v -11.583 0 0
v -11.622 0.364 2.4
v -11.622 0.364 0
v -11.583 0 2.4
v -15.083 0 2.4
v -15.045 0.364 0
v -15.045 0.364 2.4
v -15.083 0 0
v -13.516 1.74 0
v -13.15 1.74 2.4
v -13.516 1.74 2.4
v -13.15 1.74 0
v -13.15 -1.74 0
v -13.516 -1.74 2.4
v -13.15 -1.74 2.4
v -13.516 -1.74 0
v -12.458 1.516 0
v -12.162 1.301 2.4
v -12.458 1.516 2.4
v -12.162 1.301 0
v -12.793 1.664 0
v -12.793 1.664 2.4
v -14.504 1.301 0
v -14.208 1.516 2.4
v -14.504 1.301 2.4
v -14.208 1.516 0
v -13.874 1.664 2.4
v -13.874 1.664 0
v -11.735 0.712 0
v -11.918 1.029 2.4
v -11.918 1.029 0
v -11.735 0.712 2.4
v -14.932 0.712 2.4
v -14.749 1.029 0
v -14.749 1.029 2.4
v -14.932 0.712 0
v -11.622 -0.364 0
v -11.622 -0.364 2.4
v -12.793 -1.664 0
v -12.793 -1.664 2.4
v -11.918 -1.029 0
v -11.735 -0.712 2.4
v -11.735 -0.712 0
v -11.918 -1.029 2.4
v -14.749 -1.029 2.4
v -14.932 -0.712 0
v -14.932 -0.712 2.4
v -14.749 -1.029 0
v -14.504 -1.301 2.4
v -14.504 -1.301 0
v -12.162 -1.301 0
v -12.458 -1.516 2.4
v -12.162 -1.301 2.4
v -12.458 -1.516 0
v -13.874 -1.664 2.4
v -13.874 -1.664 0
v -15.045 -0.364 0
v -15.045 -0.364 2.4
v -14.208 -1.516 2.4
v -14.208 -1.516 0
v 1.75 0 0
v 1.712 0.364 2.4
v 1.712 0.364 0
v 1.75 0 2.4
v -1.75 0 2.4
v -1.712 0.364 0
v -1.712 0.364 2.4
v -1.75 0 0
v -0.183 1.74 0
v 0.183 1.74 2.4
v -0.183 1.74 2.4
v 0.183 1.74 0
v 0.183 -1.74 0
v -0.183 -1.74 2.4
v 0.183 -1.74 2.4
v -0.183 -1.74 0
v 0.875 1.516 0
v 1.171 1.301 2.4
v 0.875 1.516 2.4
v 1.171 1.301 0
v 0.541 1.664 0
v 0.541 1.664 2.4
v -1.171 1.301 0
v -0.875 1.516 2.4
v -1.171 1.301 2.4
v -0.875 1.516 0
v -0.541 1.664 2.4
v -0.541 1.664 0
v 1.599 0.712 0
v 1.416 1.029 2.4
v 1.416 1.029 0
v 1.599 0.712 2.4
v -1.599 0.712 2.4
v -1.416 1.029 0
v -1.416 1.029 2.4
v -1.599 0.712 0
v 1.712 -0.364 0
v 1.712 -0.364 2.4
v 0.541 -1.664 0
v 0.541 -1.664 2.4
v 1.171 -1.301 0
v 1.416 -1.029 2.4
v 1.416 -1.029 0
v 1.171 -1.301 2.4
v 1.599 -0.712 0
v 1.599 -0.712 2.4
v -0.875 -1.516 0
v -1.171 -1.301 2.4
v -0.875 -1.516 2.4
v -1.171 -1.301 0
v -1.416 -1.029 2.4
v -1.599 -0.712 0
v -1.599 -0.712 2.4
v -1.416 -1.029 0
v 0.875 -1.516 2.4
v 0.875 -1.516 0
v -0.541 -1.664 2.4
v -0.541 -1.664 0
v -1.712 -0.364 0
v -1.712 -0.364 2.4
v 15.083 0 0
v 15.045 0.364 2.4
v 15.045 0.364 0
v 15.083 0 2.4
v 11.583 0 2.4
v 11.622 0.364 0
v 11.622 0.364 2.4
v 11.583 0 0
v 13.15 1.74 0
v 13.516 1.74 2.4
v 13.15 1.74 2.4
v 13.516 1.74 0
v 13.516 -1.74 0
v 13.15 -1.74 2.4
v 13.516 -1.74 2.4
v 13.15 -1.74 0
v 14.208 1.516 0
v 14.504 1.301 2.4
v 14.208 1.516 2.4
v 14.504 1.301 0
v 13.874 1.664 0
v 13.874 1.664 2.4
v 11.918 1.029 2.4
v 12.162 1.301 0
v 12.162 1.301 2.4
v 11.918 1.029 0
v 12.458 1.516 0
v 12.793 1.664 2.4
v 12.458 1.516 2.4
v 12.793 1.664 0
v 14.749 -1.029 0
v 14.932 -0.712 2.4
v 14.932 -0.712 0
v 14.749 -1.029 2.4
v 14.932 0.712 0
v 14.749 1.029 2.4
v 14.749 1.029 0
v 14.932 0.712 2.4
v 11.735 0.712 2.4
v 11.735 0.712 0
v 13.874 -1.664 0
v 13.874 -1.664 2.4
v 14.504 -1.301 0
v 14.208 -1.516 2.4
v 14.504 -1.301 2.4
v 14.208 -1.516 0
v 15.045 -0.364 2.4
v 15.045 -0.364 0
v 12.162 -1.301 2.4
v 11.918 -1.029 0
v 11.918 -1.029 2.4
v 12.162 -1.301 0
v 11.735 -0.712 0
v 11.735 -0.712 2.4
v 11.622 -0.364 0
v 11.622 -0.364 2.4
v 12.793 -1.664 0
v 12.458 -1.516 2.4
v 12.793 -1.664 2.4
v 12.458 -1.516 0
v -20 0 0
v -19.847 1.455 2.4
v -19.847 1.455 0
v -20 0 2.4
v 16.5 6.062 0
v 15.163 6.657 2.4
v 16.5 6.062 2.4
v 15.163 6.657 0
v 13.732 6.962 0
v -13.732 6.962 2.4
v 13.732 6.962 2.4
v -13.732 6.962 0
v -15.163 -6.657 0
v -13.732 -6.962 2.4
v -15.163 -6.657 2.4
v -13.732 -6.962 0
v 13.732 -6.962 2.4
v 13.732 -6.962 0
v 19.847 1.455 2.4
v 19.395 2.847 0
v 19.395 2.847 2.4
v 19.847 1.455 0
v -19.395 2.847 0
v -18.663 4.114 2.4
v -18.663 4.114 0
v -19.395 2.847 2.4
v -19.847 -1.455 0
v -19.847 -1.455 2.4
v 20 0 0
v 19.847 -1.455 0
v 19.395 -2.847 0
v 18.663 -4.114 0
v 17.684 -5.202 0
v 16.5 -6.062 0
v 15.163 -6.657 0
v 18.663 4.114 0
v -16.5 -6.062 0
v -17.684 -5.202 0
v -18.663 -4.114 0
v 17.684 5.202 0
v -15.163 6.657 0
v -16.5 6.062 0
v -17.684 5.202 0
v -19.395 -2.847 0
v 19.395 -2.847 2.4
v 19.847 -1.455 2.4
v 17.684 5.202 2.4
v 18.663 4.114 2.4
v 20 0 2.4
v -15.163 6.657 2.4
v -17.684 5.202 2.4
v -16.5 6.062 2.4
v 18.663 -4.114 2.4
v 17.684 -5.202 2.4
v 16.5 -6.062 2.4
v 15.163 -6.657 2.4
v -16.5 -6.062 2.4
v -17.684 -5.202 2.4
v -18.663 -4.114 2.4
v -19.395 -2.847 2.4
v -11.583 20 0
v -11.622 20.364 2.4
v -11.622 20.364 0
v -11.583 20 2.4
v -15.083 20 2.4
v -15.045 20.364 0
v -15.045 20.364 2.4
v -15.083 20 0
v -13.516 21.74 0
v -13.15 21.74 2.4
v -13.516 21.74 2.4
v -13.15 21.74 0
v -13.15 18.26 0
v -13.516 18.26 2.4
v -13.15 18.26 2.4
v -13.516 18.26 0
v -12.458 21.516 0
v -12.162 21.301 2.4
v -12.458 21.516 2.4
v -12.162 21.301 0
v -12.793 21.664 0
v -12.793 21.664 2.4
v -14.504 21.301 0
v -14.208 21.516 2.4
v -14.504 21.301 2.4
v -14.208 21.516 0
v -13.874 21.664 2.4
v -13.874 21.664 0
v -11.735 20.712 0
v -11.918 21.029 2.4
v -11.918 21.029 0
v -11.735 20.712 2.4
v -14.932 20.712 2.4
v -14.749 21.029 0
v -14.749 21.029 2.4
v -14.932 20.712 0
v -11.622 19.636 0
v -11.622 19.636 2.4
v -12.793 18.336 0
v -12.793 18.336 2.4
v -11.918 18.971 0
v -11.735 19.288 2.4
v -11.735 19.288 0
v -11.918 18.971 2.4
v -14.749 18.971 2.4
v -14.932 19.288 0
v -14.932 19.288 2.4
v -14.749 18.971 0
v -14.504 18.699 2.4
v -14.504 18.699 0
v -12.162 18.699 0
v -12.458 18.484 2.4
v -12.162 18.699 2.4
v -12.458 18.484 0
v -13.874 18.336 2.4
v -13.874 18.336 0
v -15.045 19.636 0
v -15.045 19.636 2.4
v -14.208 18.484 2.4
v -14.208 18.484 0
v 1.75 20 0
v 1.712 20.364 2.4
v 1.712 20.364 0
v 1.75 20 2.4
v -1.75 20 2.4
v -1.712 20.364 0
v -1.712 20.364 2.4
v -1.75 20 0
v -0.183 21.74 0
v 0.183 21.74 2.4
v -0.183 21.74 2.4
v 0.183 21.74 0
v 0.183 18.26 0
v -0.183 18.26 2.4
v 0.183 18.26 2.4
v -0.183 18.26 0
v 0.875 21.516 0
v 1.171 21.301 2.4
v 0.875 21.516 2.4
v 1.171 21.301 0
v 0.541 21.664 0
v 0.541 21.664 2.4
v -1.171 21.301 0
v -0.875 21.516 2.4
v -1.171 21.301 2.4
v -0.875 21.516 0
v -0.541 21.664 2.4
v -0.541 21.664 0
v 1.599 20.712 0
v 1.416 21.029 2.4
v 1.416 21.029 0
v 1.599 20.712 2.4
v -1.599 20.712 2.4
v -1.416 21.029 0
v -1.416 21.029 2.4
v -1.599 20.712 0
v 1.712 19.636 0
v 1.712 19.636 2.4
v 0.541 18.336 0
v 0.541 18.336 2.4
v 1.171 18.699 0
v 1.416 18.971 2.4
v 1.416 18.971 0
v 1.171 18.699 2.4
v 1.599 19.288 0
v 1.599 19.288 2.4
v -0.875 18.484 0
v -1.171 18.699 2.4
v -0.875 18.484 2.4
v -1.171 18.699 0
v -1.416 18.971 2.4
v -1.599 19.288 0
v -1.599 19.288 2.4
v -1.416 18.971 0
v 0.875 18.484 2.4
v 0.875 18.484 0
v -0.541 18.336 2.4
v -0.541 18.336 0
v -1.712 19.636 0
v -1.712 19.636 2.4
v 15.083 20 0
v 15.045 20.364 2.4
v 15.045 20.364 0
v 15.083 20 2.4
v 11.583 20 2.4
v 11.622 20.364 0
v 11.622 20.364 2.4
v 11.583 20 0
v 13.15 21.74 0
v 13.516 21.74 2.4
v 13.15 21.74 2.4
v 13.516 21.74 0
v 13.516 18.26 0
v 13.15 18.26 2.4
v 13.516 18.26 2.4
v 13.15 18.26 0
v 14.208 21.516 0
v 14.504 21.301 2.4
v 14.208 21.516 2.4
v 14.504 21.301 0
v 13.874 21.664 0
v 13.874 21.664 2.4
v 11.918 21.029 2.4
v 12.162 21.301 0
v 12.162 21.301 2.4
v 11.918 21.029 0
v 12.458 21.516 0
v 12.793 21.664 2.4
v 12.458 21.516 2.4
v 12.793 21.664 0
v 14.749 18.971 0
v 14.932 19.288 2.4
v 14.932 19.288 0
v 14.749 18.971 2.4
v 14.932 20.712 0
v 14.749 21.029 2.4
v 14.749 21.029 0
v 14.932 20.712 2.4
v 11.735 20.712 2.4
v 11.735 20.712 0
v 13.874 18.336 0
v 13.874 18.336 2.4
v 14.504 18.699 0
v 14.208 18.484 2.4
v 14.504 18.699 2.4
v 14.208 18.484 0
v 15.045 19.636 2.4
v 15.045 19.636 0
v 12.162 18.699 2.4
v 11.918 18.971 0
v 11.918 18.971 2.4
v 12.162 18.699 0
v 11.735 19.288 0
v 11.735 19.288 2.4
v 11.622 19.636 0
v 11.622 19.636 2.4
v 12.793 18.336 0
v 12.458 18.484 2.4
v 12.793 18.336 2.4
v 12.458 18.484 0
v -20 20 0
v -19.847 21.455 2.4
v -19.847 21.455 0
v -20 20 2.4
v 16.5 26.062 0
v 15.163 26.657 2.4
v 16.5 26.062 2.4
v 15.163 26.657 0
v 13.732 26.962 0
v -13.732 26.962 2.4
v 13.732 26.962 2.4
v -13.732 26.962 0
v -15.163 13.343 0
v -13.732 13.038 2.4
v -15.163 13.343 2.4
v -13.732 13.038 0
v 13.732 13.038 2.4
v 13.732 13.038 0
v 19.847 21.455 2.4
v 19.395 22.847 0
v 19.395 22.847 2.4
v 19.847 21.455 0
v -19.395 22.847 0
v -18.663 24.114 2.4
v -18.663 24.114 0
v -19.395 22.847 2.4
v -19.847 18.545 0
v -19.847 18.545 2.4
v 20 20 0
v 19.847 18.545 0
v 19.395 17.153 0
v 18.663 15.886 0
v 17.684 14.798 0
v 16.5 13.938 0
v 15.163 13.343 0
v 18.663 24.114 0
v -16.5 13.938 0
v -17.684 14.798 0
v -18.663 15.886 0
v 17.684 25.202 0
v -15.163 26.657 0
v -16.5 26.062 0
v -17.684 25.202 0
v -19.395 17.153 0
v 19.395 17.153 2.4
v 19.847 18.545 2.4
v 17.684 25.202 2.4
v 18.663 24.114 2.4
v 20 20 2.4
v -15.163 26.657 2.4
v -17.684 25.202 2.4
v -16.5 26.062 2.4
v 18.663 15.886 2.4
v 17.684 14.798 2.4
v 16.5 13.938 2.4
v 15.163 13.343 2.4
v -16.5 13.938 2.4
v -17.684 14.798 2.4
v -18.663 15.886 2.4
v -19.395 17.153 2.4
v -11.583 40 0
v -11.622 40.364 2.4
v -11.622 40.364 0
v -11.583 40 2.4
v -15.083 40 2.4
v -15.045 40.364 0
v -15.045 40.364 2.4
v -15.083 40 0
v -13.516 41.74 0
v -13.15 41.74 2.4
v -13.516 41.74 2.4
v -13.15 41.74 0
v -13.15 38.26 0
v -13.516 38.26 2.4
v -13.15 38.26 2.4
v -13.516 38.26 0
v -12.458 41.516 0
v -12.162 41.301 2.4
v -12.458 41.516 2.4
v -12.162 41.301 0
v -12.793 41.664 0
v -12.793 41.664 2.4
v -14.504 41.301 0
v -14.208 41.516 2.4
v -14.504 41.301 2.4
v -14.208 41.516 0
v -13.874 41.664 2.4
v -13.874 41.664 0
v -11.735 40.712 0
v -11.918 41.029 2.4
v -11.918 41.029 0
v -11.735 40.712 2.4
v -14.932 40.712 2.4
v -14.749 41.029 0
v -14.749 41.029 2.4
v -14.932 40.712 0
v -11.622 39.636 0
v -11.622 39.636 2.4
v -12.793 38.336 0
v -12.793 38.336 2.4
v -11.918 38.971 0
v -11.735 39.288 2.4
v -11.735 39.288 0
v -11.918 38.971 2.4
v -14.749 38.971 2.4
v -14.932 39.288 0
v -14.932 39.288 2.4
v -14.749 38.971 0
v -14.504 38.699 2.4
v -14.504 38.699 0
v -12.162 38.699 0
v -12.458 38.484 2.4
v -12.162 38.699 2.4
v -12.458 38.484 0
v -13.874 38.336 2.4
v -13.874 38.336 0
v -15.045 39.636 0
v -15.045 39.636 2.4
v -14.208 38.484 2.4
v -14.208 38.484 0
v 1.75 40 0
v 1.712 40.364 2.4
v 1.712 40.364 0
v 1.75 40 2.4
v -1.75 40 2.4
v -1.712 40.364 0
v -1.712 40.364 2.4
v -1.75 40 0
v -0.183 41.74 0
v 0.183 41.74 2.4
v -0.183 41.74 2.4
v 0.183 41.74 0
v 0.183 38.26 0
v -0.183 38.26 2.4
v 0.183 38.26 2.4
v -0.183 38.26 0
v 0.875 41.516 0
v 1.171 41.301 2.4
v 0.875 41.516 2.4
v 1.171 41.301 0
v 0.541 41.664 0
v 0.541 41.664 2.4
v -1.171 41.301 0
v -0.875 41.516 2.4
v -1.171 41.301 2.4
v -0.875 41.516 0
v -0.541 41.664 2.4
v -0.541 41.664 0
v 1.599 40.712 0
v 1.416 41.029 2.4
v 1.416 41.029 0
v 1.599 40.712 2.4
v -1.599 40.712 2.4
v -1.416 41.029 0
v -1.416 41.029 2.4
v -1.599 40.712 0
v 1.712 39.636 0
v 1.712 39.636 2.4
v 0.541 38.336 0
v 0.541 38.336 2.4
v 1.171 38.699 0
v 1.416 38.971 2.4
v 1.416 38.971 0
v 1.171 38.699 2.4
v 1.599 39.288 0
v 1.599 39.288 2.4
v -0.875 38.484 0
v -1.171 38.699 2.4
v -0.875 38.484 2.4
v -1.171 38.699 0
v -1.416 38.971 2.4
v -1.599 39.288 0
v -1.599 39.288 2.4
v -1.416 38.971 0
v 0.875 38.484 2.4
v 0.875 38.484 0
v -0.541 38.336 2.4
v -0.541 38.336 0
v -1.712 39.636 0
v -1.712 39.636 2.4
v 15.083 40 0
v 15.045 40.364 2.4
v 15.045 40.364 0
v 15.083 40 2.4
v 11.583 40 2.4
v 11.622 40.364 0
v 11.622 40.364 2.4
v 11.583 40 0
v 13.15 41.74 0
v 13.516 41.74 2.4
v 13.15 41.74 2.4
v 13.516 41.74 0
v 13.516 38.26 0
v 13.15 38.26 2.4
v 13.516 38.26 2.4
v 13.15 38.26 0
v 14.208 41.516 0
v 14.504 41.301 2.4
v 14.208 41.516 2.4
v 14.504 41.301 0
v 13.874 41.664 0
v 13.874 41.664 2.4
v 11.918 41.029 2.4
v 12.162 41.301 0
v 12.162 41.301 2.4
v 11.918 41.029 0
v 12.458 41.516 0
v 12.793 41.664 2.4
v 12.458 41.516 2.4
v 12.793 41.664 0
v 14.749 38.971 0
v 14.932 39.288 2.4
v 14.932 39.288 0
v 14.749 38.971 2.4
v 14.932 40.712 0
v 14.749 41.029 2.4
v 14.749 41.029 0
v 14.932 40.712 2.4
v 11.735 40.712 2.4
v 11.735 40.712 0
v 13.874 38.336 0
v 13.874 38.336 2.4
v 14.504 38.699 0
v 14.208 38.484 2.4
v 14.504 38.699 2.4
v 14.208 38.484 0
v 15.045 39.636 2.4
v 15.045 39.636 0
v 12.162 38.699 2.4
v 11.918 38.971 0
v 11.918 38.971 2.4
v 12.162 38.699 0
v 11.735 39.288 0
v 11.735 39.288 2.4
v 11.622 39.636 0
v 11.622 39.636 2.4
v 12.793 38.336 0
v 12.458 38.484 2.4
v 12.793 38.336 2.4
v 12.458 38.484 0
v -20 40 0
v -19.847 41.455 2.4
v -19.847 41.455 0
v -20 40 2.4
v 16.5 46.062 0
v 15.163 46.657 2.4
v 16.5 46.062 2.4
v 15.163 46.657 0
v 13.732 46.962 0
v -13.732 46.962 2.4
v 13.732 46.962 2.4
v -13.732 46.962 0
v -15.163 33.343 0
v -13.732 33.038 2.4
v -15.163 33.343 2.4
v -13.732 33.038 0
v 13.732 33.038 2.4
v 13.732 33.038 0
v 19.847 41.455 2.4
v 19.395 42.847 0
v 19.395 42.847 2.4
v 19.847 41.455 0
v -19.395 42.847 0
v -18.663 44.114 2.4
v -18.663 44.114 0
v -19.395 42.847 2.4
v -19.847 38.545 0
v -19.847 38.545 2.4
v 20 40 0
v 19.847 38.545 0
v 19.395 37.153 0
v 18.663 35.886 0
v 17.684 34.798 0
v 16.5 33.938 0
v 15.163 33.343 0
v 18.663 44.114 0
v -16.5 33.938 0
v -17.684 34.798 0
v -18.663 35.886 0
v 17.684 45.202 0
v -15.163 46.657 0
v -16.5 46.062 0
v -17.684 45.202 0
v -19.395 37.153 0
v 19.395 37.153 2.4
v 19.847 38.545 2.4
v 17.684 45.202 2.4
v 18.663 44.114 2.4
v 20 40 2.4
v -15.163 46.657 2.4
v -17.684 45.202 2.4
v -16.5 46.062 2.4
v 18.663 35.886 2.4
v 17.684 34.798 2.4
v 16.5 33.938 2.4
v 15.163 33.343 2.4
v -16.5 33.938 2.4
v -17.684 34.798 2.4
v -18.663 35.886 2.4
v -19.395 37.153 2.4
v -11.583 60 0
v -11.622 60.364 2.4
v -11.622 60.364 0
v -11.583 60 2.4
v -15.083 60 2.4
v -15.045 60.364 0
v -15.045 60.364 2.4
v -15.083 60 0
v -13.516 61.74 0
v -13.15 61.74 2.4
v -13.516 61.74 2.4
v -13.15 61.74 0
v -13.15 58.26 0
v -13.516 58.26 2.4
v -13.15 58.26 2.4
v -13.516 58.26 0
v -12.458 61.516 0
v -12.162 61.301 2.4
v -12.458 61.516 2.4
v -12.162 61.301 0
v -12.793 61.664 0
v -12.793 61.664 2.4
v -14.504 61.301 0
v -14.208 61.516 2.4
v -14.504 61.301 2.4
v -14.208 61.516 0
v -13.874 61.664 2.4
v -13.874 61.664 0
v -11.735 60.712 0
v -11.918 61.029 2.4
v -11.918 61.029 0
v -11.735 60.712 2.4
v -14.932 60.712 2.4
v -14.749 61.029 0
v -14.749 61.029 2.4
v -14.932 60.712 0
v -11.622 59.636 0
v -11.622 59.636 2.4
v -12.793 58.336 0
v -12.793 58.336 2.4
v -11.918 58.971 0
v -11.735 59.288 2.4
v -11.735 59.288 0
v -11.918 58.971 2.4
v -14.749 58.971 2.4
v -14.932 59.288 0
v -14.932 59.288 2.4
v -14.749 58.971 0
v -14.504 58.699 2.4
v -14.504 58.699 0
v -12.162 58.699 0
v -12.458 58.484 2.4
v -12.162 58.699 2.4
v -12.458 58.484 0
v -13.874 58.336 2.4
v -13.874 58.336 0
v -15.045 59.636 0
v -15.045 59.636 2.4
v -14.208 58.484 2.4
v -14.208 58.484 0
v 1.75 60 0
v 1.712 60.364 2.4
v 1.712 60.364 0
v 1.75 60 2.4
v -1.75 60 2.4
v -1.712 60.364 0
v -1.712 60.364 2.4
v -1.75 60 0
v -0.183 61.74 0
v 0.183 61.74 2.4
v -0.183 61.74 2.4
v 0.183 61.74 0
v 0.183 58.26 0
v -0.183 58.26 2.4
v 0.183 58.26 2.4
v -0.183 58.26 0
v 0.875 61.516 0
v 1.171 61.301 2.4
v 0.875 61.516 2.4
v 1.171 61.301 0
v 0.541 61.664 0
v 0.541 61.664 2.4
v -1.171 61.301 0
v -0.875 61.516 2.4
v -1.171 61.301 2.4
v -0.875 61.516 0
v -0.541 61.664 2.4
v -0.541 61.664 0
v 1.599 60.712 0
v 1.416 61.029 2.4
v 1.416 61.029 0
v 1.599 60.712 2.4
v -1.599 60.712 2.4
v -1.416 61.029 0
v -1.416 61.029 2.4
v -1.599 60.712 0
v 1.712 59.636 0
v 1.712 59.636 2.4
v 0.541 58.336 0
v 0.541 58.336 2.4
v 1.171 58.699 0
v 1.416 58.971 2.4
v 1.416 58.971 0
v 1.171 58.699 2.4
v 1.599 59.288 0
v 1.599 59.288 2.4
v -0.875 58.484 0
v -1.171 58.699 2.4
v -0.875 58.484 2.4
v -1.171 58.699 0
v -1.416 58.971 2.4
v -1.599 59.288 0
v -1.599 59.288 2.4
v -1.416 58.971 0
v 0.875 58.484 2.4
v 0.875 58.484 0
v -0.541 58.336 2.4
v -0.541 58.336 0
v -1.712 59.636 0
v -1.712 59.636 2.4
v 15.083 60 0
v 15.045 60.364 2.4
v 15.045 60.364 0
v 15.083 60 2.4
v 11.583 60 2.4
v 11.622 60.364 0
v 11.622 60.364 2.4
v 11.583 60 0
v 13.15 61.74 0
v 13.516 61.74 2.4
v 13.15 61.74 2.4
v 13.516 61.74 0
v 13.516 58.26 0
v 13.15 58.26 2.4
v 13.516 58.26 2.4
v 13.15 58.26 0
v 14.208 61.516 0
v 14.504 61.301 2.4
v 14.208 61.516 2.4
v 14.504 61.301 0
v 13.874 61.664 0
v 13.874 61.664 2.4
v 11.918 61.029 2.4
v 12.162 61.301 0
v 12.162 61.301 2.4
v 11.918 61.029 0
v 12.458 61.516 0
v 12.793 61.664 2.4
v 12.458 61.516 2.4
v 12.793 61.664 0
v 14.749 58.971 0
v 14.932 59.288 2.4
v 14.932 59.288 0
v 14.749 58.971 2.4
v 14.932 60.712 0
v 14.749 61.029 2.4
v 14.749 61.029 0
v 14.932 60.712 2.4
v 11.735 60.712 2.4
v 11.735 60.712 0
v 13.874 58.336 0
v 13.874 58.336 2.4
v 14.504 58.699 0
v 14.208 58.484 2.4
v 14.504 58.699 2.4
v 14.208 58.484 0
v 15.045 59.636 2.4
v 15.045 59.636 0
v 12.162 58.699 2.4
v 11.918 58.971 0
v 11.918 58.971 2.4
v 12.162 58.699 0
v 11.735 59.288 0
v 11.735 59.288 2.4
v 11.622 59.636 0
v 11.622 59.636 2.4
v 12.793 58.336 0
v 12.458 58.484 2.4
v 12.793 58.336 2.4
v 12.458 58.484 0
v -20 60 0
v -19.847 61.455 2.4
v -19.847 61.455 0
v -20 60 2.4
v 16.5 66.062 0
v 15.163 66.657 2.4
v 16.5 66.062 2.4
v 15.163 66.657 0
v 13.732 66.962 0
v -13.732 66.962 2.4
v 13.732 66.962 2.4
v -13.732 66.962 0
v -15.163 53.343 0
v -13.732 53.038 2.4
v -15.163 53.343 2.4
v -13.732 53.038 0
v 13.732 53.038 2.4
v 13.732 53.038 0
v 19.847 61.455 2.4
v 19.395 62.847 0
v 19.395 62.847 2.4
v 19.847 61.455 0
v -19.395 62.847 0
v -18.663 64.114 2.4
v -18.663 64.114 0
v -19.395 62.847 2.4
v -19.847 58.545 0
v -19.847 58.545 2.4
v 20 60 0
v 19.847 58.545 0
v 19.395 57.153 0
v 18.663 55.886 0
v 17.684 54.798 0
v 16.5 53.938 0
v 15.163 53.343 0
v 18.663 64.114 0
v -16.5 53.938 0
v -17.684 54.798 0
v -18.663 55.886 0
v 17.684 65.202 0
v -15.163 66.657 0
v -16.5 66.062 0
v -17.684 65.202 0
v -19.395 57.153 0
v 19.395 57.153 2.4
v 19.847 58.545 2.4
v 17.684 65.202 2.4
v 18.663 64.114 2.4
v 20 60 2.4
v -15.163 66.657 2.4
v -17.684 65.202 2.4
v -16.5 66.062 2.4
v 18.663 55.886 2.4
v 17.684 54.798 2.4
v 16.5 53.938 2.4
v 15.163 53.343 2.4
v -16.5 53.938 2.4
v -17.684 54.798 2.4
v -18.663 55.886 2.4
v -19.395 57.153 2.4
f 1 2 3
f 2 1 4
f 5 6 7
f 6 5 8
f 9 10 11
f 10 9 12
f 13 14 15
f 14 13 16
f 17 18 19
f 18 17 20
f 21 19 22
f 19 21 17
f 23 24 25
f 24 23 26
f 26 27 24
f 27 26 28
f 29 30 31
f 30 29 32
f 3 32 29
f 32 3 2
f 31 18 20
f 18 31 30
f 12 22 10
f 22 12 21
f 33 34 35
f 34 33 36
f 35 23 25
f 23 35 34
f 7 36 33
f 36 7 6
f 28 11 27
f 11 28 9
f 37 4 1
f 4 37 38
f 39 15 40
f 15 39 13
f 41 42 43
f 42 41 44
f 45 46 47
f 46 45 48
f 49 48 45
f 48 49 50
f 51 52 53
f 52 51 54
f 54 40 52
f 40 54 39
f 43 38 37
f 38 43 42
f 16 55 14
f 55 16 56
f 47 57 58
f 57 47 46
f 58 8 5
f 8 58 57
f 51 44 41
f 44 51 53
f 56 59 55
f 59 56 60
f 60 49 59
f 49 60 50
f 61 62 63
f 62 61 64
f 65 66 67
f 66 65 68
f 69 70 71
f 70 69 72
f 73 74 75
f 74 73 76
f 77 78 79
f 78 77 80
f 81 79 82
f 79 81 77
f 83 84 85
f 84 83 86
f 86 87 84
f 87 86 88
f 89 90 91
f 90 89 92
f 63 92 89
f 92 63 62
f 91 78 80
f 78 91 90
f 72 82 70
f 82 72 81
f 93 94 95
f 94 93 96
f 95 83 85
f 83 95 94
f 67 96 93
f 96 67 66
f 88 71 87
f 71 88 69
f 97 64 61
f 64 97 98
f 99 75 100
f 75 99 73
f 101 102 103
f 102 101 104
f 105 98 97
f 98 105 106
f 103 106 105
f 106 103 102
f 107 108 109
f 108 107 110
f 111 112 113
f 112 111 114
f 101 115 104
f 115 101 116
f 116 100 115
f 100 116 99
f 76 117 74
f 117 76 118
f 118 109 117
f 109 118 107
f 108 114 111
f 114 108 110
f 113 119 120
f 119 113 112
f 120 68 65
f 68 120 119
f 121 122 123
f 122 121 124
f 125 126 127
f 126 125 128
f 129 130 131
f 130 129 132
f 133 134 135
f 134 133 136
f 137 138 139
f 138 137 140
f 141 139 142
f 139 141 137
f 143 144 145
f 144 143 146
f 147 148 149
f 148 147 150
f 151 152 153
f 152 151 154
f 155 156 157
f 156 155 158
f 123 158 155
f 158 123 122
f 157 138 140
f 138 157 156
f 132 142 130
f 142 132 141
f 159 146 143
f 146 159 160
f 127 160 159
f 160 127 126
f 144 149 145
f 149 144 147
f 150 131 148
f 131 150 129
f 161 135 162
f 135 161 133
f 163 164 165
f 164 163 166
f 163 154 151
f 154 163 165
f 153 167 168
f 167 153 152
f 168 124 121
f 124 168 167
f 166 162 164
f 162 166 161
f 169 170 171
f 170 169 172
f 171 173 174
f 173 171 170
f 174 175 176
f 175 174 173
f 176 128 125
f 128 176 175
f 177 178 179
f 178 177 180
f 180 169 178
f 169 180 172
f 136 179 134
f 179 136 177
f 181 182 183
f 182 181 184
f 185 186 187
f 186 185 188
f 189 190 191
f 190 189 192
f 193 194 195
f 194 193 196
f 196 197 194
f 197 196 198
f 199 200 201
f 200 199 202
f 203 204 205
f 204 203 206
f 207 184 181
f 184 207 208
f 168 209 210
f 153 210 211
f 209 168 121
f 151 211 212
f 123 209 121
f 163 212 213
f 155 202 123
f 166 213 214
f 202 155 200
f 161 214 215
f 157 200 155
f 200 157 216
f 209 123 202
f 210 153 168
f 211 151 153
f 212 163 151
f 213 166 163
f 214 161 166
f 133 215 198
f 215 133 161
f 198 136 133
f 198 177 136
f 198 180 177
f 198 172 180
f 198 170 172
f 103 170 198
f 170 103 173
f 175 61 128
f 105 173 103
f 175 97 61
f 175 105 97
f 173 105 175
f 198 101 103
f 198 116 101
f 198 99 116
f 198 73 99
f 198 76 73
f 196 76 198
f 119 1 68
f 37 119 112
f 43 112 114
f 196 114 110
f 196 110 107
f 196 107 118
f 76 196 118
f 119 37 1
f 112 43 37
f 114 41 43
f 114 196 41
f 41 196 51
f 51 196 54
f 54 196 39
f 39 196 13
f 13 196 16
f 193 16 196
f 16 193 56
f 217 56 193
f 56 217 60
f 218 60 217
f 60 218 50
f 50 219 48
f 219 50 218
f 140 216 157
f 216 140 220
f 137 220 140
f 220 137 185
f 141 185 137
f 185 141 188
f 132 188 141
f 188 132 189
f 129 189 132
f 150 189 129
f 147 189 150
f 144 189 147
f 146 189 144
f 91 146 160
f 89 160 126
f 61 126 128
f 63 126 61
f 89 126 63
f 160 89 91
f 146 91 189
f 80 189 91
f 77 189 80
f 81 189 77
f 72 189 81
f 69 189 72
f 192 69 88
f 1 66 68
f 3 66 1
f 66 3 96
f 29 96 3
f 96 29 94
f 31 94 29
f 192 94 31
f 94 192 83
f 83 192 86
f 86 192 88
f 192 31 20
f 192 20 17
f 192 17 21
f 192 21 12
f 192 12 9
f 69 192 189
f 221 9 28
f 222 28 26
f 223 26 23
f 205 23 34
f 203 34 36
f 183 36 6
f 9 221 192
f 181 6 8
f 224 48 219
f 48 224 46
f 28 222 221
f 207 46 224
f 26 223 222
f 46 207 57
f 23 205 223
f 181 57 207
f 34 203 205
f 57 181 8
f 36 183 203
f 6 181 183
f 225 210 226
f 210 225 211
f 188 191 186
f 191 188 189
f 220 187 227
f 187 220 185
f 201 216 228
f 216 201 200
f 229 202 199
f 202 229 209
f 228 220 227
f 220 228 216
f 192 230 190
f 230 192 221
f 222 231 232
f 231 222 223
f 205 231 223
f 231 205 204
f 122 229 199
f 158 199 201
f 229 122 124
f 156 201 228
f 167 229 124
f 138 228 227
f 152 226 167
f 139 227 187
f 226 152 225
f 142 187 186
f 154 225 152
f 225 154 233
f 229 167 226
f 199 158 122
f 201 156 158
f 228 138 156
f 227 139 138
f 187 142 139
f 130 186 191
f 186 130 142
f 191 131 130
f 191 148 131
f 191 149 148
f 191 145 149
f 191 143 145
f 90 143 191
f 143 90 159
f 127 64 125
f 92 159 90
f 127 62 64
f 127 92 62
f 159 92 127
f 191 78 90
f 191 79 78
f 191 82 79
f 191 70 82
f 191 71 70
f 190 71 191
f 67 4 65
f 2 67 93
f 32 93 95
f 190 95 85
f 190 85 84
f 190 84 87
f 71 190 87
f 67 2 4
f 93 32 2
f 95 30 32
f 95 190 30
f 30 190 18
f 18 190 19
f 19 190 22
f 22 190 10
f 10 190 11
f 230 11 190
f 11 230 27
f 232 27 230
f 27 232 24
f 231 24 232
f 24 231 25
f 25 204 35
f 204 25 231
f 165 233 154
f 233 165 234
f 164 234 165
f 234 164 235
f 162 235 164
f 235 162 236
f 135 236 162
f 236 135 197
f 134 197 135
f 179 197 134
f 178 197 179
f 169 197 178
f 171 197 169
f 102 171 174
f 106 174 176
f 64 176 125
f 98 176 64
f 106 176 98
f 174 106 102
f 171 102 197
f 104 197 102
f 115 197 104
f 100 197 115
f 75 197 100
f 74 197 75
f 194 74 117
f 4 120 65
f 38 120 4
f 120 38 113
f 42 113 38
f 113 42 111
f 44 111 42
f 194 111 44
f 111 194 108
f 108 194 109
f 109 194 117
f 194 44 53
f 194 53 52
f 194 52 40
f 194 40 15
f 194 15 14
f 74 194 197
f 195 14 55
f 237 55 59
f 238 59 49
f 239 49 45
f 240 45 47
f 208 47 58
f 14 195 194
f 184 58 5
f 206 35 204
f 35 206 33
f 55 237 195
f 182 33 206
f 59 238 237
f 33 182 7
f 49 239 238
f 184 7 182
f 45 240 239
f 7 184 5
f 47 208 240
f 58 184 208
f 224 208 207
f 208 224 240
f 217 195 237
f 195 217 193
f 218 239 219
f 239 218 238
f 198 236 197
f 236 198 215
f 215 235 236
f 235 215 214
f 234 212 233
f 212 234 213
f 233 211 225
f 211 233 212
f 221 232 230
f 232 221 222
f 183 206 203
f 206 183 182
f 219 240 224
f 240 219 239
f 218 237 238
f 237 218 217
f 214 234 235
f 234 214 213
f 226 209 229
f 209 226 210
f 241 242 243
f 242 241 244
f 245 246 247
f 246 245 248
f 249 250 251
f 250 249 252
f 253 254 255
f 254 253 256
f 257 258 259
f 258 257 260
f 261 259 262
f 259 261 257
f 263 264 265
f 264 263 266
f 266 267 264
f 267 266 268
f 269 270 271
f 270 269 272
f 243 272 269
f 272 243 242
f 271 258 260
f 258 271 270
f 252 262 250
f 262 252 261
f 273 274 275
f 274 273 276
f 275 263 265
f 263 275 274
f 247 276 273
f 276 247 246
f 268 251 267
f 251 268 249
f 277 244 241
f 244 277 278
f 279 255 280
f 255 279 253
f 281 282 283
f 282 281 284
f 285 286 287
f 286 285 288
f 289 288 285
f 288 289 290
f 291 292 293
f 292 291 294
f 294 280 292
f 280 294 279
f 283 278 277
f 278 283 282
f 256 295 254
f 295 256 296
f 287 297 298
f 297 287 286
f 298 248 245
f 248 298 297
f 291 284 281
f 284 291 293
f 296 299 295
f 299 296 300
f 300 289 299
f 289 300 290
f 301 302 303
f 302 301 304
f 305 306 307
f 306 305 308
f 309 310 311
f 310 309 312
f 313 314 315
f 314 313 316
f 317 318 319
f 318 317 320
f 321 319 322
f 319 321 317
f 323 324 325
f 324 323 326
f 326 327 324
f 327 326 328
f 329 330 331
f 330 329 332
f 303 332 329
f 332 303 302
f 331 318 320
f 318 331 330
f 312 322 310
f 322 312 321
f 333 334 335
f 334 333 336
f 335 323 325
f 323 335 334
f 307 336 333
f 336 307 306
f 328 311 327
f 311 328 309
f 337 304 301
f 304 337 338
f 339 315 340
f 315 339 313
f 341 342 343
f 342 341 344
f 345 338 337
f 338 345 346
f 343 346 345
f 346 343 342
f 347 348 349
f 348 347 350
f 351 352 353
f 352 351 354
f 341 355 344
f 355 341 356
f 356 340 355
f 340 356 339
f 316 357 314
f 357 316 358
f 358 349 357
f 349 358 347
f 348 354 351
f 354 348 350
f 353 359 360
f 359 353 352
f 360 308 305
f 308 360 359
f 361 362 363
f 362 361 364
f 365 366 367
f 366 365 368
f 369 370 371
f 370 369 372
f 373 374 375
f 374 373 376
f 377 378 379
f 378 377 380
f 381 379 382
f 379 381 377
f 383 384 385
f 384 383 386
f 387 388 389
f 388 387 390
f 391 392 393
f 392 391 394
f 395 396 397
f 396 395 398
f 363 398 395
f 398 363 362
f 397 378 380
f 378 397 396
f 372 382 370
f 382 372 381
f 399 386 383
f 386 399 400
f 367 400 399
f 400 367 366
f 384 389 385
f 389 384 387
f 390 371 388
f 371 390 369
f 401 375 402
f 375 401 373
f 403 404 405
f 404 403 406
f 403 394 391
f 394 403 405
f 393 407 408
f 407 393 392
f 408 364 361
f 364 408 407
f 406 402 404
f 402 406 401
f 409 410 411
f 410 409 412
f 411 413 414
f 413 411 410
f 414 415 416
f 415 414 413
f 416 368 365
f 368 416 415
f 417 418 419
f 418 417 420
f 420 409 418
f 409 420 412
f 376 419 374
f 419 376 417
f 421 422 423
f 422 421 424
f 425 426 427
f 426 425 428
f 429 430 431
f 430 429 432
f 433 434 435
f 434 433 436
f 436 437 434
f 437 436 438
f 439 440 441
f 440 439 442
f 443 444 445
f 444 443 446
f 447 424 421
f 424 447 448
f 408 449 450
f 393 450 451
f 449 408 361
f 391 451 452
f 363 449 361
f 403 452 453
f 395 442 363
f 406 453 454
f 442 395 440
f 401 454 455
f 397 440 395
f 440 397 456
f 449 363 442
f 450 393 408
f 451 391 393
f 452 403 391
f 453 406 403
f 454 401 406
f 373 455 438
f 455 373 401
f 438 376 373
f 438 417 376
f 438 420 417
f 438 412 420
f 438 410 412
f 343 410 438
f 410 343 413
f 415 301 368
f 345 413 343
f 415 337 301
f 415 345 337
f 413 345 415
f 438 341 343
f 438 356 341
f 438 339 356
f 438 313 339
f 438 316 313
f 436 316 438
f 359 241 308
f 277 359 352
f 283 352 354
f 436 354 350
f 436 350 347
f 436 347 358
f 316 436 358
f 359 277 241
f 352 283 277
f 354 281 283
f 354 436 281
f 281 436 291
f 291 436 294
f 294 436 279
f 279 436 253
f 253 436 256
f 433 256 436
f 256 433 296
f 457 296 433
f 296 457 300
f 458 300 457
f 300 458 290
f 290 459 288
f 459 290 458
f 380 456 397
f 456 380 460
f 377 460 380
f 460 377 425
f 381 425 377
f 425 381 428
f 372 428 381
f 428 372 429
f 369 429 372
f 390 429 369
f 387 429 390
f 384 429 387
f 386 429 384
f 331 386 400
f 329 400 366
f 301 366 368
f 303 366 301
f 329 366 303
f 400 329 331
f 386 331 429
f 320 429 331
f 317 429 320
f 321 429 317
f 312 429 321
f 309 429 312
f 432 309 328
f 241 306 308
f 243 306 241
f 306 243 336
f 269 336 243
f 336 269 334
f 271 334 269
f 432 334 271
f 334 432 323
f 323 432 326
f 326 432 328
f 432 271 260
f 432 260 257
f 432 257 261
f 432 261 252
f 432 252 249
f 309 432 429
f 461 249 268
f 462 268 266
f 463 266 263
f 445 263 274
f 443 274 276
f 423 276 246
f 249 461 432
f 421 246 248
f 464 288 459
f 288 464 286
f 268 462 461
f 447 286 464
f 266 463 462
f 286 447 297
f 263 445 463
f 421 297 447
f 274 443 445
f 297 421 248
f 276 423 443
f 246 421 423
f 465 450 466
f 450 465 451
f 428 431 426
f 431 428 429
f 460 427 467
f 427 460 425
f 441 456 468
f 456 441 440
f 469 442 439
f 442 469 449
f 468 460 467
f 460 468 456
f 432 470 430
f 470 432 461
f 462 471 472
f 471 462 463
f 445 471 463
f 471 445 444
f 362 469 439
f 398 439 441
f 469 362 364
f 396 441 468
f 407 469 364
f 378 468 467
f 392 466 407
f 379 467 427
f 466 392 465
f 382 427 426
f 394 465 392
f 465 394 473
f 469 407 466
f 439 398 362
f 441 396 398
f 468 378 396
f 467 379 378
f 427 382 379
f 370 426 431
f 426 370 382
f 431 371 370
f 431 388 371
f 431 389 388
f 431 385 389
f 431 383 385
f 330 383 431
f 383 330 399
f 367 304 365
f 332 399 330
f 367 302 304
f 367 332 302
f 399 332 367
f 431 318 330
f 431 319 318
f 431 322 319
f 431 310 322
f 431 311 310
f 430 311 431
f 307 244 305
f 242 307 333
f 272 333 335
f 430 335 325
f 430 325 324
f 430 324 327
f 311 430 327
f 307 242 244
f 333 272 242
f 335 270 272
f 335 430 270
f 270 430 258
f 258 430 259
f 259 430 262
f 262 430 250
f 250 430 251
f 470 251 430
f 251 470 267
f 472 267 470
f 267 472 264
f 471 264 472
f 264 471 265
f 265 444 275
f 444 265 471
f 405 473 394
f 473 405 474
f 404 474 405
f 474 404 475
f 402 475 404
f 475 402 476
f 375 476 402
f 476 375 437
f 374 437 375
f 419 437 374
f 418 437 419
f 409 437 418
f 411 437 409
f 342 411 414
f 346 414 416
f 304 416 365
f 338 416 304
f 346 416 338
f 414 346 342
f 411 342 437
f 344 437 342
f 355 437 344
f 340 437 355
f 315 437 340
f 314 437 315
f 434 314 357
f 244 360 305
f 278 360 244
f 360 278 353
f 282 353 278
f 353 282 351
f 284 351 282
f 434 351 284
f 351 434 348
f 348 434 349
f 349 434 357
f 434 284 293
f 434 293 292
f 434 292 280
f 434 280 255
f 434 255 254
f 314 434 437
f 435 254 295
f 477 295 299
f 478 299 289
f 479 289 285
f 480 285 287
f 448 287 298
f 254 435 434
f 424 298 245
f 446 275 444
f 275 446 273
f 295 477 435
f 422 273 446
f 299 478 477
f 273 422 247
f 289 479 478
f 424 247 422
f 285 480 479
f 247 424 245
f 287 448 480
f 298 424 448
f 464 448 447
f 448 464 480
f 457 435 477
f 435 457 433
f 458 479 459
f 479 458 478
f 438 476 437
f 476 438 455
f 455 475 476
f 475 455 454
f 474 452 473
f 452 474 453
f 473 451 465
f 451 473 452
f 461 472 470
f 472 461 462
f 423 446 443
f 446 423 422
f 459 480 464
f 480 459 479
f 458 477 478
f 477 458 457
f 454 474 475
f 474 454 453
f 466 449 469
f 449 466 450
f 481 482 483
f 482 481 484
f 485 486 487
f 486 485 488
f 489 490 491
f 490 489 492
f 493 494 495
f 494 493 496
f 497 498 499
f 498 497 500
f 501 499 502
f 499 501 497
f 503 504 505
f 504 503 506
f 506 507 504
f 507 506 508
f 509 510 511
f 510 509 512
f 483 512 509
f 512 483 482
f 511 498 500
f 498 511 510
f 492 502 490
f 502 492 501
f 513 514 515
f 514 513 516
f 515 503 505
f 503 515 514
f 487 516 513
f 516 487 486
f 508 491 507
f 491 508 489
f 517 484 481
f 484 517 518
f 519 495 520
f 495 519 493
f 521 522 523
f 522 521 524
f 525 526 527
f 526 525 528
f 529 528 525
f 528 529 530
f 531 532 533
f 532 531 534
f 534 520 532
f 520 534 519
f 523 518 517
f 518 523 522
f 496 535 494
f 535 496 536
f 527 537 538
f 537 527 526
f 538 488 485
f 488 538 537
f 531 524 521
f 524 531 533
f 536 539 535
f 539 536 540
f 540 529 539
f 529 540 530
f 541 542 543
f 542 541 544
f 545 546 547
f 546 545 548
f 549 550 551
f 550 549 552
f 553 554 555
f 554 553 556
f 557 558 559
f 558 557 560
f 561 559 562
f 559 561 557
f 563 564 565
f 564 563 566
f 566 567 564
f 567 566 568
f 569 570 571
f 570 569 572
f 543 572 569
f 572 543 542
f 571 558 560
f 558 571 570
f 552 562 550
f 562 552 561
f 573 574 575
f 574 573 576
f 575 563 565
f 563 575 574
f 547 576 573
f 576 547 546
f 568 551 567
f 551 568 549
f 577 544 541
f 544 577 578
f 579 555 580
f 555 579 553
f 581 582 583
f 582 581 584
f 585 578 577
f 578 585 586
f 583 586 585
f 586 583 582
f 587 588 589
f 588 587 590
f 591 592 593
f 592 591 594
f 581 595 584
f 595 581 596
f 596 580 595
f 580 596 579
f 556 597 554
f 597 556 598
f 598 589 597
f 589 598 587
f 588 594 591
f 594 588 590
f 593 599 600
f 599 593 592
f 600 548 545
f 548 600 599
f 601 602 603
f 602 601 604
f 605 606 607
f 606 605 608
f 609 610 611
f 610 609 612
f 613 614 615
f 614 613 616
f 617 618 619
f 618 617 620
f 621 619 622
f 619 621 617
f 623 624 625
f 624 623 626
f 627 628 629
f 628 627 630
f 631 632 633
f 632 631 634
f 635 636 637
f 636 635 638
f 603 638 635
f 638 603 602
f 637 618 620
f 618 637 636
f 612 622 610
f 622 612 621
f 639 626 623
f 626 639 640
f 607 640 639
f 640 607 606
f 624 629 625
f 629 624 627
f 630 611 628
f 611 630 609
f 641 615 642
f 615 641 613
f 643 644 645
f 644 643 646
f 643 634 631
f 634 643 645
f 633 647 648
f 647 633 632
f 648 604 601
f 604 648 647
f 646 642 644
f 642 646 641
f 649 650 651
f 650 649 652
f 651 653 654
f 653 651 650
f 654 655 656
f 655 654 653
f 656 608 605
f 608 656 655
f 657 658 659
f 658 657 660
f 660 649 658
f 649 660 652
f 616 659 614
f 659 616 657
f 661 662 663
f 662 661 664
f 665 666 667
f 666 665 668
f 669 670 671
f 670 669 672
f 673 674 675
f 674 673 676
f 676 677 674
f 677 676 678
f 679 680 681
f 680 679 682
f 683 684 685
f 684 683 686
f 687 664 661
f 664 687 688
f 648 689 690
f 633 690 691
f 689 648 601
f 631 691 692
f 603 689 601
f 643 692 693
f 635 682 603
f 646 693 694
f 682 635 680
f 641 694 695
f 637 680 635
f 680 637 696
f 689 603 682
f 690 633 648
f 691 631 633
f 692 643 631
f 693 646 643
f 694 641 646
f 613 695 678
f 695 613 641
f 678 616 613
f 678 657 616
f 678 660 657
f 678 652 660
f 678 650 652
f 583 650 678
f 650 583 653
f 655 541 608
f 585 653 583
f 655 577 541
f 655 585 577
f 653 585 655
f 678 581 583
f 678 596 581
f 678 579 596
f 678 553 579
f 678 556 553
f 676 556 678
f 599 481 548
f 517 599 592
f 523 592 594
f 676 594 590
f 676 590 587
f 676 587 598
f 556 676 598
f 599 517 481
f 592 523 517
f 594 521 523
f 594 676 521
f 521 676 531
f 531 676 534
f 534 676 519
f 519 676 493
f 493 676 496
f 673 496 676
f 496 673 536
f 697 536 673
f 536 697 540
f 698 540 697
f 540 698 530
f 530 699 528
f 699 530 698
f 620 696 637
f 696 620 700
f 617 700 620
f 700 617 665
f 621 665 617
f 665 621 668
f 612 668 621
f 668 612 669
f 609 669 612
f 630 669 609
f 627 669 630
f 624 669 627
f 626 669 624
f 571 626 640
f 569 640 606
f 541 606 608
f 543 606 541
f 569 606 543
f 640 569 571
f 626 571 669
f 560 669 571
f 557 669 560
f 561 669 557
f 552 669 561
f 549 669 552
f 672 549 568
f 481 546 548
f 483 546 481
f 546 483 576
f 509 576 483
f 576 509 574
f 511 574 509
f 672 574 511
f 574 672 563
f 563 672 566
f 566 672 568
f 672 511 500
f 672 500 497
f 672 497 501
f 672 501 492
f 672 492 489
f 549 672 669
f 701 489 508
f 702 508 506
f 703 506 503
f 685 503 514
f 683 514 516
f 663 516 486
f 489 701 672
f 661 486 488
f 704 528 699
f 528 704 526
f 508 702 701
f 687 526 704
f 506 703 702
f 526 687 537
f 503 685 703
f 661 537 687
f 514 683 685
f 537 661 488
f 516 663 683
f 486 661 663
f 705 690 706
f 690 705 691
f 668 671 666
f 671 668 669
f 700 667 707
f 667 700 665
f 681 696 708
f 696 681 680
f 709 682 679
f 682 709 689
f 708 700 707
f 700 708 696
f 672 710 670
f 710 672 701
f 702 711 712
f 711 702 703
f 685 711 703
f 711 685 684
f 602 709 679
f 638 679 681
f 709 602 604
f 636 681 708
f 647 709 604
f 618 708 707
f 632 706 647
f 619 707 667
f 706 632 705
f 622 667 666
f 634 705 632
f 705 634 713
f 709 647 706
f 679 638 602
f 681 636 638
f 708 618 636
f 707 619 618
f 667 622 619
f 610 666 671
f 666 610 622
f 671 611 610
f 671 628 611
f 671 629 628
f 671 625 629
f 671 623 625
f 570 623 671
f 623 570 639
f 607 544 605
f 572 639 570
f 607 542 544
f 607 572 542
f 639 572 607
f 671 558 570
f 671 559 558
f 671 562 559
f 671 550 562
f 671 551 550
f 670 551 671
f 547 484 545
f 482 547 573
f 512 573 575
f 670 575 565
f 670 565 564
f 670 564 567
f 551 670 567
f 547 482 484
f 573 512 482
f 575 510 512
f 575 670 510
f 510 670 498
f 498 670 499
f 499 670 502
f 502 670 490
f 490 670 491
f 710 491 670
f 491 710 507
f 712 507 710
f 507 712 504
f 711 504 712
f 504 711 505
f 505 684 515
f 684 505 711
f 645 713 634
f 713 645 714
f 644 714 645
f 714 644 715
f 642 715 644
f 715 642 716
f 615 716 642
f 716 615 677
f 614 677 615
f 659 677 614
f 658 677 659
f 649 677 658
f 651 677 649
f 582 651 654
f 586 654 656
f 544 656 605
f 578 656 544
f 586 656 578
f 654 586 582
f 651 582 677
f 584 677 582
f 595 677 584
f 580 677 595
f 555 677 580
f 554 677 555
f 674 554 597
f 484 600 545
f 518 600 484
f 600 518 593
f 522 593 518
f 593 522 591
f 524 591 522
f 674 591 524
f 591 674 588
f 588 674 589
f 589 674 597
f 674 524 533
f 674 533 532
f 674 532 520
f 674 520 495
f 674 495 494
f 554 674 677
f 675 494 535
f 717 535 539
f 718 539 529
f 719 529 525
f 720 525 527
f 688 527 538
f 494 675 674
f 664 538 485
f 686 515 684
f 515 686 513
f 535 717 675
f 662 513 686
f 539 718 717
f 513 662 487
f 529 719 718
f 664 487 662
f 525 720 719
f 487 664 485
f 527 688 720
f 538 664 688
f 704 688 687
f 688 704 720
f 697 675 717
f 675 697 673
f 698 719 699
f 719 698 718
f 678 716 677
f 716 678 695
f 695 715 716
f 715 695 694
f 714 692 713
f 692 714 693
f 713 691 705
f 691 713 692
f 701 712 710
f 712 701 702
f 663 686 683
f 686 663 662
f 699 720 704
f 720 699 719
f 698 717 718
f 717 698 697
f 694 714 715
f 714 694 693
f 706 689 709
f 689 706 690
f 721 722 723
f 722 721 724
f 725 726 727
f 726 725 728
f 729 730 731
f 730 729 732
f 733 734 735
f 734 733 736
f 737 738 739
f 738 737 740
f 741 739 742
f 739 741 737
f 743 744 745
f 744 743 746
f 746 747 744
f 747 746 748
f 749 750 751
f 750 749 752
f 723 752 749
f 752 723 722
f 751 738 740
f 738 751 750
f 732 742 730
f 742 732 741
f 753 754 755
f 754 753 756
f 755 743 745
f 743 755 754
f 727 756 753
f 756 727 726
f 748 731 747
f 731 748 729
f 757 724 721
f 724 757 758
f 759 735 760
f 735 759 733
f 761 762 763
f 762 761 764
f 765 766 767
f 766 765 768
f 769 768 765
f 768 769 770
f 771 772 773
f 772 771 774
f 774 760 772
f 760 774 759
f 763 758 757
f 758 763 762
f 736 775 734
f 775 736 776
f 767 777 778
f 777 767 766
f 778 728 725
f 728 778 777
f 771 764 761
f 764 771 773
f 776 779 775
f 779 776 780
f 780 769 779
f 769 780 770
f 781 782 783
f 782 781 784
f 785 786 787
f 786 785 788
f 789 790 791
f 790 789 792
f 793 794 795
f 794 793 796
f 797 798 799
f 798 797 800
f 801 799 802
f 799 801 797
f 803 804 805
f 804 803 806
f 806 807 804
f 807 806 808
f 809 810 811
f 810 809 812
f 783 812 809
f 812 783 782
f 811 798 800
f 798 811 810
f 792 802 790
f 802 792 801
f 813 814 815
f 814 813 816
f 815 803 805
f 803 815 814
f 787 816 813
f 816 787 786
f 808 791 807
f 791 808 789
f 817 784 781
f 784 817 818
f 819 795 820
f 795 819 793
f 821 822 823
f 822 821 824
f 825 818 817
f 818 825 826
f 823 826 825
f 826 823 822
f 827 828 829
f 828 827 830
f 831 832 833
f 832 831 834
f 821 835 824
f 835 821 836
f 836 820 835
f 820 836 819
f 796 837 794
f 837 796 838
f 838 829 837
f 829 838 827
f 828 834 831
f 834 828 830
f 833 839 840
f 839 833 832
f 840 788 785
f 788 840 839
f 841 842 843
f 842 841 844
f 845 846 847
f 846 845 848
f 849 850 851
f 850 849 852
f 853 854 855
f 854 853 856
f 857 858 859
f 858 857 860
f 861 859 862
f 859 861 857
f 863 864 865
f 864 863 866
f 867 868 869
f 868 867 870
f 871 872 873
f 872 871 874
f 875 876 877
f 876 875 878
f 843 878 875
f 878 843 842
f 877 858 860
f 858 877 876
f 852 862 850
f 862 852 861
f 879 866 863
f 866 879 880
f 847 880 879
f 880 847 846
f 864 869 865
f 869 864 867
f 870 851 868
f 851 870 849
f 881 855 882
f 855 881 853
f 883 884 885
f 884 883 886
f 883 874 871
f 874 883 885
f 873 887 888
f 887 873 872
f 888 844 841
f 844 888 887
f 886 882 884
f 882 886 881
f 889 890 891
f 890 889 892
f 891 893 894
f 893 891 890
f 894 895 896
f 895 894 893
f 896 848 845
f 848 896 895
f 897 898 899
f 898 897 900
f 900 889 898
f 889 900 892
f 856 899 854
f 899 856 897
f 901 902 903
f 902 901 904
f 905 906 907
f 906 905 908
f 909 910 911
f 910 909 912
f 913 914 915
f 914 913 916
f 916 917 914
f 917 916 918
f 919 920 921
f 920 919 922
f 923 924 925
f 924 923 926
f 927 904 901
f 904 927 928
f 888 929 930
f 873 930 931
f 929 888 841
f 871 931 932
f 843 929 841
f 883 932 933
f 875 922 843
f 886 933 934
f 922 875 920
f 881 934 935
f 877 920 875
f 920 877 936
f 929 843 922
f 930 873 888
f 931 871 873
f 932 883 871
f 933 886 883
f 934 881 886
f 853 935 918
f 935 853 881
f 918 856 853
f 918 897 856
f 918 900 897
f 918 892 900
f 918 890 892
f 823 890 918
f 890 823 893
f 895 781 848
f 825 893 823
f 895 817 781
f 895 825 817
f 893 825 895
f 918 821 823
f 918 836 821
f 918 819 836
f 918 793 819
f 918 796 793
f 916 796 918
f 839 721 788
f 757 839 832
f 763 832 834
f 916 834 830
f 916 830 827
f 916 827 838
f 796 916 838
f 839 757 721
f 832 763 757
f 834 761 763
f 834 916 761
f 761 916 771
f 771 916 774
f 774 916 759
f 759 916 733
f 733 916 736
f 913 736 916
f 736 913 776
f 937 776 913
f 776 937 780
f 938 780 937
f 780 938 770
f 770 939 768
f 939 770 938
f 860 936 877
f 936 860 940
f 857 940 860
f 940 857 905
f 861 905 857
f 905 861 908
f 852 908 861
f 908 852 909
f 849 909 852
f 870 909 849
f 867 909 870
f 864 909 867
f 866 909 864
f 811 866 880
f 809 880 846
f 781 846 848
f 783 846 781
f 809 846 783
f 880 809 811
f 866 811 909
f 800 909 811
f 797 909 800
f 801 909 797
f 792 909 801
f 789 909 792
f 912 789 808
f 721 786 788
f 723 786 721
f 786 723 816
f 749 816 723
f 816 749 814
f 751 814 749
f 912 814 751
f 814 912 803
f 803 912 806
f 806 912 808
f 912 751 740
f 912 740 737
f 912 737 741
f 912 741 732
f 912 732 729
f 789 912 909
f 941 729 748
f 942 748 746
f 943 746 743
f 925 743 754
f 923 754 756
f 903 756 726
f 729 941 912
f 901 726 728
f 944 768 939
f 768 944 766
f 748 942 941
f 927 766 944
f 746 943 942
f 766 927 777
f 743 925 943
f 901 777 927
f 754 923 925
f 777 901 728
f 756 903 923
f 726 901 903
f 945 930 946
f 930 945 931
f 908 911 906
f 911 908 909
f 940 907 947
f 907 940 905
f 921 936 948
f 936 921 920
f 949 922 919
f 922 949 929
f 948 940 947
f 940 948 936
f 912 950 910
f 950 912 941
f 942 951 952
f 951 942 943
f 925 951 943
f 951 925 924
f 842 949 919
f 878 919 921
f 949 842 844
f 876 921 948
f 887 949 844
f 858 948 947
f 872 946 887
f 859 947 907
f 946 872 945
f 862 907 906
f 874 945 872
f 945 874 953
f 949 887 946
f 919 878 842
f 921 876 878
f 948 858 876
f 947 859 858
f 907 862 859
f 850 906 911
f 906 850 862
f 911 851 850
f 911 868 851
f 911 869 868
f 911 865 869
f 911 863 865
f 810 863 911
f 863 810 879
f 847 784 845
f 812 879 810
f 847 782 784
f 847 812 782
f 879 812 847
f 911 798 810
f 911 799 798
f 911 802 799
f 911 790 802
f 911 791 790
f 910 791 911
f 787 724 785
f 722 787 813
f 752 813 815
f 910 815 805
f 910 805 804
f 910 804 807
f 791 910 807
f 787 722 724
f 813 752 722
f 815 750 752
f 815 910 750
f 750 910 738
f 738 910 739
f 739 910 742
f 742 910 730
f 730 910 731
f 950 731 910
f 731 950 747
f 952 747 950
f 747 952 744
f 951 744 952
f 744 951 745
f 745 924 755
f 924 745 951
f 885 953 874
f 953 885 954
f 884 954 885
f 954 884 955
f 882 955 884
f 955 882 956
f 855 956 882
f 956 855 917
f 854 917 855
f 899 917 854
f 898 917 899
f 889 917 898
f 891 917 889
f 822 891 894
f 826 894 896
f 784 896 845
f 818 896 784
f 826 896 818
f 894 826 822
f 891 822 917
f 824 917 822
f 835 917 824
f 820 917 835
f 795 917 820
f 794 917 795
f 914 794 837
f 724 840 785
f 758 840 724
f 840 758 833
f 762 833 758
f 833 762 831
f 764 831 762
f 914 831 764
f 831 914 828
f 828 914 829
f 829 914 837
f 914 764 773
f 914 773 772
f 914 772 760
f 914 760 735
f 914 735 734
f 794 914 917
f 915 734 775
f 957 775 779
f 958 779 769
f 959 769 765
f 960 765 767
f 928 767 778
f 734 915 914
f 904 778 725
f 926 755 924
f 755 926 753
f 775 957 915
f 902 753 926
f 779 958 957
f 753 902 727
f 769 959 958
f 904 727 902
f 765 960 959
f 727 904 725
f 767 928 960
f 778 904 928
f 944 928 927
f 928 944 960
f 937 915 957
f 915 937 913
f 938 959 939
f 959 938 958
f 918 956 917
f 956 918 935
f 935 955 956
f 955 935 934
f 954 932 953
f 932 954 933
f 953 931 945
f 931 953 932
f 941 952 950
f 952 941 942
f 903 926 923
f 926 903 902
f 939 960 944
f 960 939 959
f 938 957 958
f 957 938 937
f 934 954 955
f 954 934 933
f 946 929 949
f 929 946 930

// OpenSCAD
// Placas de refuerzo y ensamble trasero (opcionales para maxima rigidez)
// Se pegan con cianoacrilato en la parte trasera de las uniones (invisibles desde el frente)

$fn = 30;

module reinforcement_plate(length = 40, width = 14, thickness = 2.4) {
    difference() {
        hull() {
            translate([-length/2 + width/2, 0, 0]) cylinder(d = width, h = thickness);
            translate([length/2 - width/2, 0, 0]) cylinder(d = width, h = thickness);
        }
        // Ranuras de agarre para pegamento
        for (x = [-length/3, 0, length/3]) {
            translate([x, 0, -0.1]) cylinder(d = 3.5, h = thickness + 0.2);
        }
    }
}

// 4 placas organizadas en cama
for (i = [0:3]) {
    translate([0, i * 20, 0])
        reinforcement_plate();
}
